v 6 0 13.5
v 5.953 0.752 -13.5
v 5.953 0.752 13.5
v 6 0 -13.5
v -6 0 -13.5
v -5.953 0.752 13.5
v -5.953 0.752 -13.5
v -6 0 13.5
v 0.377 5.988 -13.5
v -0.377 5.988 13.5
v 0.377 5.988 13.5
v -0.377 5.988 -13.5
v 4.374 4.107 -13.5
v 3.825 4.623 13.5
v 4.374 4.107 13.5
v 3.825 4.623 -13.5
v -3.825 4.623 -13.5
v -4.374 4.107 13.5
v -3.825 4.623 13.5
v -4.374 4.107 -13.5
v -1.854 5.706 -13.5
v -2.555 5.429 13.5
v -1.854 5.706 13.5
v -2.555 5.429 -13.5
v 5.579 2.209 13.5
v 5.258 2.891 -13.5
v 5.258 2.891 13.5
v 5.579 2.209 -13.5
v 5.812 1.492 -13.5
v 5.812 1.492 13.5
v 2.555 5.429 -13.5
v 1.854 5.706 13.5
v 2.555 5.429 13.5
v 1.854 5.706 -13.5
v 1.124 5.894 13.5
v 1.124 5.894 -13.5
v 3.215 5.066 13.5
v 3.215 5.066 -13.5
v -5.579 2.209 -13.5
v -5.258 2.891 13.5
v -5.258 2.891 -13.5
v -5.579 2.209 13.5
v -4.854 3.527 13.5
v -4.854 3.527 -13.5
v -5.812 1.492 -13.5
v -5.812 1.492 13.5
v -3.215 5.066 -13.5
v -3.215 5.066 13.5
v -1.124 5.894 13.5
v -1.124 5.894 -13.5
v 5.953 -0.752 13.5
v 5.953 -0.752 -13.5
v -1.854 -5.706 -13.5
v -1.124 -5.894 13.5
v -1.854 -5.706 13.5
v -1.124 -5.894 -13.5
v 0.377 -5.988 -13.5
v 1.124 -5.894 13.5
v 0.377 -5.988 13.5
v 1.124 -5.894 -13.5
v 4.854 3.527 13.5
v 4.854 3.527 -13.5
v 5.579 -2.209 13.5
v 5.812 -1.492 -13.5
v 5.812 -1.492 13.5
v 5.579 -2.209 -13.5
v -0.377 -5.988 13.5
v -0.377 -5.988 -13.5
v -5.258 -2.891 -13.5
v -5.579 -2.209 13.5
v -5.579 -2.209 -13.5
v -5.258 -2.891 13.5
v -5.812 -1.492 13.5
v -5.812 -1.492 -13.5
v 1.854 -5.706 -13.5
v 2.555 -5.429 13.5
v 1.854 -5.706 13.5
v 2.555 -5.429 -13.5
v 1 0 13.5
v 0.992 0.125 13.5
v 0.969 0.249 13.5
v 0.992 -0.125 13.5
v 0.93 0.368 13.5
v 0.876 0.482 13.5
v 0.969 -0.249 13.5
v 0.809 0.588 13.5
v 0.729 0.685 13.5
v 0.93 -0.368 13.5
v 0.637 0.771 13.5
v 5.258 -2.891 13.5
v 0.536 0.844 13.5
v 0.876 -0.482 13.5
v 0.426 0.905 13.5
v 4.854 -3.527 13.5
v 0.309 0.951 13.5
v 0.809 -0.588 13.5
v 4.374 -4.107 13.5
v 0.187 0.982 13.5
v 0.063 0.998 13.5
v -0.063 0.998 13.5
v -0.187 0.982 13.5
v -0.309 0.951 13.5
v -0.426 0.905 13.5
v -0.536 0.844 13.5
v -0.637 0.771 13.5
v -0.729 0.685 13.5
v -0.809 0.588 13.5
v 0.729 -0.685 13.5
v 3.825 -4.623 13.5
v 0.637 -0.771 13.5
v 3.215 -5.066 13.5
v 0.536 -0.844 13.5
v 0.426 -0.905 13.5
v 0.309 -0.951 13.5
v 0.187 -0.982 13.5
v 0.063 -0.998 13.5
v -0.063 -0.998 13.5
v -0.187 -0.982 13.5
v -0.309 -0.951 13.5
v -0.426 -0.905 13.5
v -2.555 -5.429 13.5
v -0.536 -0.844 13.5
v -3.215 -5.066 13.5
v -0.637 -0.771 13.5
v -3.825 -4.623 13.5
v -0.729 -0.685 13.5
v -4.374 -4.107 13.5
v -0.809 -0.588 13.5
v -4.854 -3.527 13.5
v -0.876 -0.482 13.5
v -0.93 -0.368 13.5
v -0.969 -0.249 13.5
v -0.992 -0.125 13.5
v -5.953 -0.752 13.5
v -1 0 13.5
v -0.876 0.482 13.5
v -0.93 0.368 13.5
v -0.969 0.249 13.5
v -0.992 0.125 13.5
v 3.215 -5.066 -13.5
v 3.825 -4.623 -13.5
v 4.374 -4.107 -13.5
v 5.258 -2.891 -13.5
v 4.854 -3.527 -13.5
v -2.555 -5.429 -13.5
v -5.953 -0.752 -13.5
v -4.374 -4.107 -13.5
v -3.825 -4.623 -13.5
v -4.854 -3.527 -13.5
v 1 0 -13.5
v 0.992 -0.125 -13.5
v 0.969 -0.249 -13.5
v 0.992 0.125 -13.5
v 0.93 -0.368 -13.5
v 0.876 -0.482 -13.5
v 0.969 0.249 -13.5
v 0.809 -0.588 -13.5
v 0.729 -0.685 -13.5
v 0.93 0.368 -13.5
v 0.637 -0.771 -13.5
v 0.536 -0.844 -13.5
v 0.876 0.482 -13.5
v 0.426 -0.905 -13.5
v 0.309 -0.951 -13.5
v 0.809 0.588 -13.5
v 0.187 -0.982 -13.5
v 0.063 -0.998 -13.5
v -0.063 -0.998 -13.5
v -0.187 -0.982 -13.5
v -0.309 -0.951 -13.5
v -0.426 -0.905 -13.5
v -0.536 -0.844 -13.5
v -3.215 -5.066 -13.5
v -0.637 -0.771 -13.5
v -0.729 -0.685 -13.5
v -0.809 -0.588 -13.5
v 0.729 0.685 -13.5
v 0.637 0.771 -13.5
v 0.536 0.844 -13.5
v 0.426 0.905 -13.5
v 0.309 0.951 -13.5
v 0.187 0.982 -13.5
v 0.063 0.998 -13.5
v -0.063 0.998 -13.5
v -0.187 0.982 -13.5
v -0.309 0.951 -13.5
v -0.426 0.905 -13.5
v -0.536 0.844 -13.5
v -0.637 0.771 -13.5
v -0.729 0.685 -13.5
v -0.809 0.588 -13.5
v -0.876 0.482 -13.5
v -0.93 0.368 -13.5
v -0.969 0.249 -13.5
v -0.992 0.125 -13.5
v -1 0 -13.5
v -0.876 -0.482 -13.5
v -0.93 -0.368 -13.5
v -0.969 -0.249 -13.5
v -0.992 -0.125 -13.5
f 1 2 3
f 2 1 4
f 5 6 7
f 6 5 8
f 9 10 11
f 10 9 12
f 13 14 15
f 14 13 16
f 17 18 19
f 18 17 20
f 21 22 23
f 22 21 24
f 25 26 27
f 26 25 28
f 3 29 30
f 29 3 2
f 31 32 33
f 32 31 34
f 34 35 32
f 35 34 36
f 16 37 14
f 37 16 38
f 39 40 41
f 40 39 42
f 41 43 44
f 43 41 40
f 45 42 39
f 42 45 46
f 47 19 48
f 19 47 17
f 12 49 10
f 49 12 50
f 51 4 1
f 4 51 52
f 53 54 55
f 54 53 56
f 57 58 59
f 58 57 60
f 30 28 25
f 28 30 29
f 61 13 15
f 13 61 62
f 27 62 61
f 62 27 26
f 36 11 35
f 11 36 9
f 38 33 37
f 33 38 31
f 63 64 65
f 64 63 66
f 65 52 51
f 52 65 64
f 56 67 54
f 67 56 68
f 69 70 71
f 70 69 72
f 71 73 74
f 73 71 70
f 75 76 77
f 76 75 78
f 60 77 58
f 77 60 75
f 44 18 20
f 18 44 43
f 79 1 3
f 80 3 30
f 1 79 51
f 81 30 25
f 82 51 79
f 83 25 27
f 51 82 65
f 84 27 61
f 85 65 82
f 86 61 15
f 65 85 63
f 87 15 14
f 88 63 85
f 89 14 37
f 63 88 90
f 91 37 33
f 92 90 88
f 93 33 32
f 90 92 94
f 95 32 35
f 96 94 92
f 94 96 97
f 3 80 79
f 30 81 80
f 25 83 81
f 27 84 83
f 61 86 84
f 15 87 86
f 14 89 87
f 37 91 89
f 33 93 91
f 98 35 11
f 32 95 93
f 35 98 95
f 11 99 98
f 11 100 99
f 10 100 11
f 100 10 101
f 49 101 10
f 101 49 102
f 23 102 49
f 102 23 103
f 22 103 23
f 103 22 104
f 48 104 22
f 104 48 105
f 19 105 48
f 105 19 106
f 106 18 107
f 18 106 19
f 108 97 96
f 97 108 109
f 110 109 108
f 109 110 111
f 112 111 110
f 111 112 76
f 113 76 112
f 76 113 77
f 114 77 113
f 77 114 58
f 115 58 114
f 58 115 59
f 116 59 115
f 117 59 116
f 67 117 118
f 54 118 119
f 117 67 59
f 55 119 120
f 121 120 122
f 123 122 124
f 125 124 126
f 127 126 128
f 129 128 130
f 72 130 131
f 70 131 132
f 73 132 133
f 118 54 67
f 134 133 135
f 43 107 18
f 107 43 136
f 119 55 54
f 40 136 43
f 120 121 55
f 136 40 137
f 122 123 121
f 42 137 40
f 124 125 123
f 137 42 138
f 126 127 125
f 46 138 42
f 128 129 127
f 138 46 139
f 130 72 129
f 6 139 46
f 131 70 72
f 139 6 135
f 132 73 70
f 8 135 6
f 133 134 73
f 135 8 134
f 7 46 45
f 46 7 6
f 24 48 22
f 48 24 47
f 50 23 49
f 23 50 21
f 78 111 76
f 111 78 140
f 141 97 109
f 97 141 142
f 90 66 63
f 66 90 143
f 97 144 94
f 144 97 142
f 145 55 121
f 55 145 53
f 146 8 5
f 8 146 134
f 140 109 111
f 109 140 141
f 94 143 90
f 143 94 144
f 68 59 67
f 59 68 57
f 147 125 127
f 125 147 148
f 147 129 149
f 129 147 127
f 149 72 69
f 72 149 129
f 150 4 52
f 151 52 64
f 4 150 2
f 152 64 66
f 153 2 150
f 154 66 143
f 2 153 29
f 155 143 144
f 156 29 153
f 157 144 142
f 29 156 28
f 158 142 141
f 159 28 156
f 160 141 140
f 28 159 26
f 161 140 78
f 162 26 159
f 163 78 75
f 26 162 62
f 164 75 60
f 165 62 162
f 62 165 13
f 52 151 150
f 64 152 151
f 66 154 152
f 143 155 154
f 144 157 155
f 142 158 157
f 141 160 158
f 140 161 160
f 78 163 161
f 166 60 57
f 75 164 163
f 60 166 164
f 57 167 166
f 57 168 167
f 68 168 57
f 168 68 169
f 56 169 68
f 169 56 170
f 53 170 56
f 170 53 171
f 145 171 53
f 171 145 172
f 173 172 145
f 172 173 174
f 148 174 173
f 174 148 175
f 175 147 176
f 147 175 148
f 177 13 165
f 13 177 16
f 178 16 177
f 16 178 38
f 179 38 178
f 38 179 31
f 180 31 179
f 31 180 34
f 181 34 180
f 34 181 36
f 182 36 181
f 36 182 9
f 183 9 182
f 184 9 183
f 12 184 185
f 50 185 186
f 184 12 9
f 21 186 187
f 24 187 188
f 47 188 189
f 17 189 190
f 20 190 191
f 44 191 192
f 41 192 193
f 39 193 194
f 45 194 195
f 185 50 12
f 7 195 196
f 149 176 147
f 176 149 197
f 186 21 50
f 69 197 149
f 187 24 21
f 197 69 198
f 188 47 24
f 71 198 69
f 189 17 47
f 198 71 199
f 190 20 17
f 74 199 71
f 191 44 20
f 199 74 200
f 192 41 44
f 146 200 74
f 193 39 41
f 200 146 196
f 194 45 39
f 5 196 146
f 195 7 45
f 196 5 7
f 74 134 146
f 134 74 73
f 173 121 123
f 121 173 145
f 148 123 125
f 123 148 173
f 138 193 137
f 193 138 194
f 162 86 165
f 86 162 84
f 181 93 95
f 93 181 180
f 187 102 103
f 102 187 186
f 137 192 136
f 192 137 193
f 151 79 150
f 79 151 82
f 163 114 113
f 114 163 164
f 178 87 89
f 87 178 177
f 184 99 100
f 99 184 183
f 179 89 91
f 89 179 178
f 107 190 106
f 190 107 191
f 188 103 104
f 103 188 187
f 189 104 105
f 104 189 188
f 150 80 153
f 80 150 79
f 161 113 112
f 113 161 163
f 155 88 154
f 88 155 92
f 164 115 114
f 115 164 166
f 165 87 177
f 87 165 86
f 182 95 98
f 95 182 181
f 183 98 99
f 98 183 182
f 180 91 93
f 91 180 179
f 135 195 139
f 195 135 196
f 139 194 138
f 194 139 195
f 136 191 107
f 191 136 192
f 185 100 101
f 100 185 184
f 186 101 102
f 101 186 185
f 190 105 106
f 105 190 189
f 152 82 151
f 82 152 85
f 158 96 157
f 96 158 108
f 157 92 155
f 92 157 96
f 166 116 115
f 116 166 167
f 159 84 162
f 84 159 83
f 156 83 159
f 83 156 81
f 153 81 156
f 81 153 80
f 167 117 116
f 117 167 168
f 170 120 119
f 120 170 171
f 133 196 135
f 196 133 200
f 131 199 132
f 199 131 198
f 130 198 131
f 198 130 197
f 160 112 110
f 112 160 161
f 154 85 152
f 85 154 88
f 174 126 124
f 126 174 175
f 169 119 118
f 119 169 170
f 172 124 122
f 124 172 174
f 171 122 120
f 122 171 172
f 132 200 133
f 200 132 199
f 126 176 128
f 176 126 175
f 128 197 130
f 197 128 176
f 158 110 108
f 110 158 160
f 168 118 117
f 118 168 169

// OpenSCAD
$fn = 50;


difference() {
	union() {
		translate(v = [0, 0, -13.5000000000]) {
			cylinder(h = 27, r = 6.0000000000);
		}
	}
	union() {
		translate(v = [0, 0, -100.0000000000]) {
			cylinder(h = 200, r = 1.0000000000);
		}
	}
}
